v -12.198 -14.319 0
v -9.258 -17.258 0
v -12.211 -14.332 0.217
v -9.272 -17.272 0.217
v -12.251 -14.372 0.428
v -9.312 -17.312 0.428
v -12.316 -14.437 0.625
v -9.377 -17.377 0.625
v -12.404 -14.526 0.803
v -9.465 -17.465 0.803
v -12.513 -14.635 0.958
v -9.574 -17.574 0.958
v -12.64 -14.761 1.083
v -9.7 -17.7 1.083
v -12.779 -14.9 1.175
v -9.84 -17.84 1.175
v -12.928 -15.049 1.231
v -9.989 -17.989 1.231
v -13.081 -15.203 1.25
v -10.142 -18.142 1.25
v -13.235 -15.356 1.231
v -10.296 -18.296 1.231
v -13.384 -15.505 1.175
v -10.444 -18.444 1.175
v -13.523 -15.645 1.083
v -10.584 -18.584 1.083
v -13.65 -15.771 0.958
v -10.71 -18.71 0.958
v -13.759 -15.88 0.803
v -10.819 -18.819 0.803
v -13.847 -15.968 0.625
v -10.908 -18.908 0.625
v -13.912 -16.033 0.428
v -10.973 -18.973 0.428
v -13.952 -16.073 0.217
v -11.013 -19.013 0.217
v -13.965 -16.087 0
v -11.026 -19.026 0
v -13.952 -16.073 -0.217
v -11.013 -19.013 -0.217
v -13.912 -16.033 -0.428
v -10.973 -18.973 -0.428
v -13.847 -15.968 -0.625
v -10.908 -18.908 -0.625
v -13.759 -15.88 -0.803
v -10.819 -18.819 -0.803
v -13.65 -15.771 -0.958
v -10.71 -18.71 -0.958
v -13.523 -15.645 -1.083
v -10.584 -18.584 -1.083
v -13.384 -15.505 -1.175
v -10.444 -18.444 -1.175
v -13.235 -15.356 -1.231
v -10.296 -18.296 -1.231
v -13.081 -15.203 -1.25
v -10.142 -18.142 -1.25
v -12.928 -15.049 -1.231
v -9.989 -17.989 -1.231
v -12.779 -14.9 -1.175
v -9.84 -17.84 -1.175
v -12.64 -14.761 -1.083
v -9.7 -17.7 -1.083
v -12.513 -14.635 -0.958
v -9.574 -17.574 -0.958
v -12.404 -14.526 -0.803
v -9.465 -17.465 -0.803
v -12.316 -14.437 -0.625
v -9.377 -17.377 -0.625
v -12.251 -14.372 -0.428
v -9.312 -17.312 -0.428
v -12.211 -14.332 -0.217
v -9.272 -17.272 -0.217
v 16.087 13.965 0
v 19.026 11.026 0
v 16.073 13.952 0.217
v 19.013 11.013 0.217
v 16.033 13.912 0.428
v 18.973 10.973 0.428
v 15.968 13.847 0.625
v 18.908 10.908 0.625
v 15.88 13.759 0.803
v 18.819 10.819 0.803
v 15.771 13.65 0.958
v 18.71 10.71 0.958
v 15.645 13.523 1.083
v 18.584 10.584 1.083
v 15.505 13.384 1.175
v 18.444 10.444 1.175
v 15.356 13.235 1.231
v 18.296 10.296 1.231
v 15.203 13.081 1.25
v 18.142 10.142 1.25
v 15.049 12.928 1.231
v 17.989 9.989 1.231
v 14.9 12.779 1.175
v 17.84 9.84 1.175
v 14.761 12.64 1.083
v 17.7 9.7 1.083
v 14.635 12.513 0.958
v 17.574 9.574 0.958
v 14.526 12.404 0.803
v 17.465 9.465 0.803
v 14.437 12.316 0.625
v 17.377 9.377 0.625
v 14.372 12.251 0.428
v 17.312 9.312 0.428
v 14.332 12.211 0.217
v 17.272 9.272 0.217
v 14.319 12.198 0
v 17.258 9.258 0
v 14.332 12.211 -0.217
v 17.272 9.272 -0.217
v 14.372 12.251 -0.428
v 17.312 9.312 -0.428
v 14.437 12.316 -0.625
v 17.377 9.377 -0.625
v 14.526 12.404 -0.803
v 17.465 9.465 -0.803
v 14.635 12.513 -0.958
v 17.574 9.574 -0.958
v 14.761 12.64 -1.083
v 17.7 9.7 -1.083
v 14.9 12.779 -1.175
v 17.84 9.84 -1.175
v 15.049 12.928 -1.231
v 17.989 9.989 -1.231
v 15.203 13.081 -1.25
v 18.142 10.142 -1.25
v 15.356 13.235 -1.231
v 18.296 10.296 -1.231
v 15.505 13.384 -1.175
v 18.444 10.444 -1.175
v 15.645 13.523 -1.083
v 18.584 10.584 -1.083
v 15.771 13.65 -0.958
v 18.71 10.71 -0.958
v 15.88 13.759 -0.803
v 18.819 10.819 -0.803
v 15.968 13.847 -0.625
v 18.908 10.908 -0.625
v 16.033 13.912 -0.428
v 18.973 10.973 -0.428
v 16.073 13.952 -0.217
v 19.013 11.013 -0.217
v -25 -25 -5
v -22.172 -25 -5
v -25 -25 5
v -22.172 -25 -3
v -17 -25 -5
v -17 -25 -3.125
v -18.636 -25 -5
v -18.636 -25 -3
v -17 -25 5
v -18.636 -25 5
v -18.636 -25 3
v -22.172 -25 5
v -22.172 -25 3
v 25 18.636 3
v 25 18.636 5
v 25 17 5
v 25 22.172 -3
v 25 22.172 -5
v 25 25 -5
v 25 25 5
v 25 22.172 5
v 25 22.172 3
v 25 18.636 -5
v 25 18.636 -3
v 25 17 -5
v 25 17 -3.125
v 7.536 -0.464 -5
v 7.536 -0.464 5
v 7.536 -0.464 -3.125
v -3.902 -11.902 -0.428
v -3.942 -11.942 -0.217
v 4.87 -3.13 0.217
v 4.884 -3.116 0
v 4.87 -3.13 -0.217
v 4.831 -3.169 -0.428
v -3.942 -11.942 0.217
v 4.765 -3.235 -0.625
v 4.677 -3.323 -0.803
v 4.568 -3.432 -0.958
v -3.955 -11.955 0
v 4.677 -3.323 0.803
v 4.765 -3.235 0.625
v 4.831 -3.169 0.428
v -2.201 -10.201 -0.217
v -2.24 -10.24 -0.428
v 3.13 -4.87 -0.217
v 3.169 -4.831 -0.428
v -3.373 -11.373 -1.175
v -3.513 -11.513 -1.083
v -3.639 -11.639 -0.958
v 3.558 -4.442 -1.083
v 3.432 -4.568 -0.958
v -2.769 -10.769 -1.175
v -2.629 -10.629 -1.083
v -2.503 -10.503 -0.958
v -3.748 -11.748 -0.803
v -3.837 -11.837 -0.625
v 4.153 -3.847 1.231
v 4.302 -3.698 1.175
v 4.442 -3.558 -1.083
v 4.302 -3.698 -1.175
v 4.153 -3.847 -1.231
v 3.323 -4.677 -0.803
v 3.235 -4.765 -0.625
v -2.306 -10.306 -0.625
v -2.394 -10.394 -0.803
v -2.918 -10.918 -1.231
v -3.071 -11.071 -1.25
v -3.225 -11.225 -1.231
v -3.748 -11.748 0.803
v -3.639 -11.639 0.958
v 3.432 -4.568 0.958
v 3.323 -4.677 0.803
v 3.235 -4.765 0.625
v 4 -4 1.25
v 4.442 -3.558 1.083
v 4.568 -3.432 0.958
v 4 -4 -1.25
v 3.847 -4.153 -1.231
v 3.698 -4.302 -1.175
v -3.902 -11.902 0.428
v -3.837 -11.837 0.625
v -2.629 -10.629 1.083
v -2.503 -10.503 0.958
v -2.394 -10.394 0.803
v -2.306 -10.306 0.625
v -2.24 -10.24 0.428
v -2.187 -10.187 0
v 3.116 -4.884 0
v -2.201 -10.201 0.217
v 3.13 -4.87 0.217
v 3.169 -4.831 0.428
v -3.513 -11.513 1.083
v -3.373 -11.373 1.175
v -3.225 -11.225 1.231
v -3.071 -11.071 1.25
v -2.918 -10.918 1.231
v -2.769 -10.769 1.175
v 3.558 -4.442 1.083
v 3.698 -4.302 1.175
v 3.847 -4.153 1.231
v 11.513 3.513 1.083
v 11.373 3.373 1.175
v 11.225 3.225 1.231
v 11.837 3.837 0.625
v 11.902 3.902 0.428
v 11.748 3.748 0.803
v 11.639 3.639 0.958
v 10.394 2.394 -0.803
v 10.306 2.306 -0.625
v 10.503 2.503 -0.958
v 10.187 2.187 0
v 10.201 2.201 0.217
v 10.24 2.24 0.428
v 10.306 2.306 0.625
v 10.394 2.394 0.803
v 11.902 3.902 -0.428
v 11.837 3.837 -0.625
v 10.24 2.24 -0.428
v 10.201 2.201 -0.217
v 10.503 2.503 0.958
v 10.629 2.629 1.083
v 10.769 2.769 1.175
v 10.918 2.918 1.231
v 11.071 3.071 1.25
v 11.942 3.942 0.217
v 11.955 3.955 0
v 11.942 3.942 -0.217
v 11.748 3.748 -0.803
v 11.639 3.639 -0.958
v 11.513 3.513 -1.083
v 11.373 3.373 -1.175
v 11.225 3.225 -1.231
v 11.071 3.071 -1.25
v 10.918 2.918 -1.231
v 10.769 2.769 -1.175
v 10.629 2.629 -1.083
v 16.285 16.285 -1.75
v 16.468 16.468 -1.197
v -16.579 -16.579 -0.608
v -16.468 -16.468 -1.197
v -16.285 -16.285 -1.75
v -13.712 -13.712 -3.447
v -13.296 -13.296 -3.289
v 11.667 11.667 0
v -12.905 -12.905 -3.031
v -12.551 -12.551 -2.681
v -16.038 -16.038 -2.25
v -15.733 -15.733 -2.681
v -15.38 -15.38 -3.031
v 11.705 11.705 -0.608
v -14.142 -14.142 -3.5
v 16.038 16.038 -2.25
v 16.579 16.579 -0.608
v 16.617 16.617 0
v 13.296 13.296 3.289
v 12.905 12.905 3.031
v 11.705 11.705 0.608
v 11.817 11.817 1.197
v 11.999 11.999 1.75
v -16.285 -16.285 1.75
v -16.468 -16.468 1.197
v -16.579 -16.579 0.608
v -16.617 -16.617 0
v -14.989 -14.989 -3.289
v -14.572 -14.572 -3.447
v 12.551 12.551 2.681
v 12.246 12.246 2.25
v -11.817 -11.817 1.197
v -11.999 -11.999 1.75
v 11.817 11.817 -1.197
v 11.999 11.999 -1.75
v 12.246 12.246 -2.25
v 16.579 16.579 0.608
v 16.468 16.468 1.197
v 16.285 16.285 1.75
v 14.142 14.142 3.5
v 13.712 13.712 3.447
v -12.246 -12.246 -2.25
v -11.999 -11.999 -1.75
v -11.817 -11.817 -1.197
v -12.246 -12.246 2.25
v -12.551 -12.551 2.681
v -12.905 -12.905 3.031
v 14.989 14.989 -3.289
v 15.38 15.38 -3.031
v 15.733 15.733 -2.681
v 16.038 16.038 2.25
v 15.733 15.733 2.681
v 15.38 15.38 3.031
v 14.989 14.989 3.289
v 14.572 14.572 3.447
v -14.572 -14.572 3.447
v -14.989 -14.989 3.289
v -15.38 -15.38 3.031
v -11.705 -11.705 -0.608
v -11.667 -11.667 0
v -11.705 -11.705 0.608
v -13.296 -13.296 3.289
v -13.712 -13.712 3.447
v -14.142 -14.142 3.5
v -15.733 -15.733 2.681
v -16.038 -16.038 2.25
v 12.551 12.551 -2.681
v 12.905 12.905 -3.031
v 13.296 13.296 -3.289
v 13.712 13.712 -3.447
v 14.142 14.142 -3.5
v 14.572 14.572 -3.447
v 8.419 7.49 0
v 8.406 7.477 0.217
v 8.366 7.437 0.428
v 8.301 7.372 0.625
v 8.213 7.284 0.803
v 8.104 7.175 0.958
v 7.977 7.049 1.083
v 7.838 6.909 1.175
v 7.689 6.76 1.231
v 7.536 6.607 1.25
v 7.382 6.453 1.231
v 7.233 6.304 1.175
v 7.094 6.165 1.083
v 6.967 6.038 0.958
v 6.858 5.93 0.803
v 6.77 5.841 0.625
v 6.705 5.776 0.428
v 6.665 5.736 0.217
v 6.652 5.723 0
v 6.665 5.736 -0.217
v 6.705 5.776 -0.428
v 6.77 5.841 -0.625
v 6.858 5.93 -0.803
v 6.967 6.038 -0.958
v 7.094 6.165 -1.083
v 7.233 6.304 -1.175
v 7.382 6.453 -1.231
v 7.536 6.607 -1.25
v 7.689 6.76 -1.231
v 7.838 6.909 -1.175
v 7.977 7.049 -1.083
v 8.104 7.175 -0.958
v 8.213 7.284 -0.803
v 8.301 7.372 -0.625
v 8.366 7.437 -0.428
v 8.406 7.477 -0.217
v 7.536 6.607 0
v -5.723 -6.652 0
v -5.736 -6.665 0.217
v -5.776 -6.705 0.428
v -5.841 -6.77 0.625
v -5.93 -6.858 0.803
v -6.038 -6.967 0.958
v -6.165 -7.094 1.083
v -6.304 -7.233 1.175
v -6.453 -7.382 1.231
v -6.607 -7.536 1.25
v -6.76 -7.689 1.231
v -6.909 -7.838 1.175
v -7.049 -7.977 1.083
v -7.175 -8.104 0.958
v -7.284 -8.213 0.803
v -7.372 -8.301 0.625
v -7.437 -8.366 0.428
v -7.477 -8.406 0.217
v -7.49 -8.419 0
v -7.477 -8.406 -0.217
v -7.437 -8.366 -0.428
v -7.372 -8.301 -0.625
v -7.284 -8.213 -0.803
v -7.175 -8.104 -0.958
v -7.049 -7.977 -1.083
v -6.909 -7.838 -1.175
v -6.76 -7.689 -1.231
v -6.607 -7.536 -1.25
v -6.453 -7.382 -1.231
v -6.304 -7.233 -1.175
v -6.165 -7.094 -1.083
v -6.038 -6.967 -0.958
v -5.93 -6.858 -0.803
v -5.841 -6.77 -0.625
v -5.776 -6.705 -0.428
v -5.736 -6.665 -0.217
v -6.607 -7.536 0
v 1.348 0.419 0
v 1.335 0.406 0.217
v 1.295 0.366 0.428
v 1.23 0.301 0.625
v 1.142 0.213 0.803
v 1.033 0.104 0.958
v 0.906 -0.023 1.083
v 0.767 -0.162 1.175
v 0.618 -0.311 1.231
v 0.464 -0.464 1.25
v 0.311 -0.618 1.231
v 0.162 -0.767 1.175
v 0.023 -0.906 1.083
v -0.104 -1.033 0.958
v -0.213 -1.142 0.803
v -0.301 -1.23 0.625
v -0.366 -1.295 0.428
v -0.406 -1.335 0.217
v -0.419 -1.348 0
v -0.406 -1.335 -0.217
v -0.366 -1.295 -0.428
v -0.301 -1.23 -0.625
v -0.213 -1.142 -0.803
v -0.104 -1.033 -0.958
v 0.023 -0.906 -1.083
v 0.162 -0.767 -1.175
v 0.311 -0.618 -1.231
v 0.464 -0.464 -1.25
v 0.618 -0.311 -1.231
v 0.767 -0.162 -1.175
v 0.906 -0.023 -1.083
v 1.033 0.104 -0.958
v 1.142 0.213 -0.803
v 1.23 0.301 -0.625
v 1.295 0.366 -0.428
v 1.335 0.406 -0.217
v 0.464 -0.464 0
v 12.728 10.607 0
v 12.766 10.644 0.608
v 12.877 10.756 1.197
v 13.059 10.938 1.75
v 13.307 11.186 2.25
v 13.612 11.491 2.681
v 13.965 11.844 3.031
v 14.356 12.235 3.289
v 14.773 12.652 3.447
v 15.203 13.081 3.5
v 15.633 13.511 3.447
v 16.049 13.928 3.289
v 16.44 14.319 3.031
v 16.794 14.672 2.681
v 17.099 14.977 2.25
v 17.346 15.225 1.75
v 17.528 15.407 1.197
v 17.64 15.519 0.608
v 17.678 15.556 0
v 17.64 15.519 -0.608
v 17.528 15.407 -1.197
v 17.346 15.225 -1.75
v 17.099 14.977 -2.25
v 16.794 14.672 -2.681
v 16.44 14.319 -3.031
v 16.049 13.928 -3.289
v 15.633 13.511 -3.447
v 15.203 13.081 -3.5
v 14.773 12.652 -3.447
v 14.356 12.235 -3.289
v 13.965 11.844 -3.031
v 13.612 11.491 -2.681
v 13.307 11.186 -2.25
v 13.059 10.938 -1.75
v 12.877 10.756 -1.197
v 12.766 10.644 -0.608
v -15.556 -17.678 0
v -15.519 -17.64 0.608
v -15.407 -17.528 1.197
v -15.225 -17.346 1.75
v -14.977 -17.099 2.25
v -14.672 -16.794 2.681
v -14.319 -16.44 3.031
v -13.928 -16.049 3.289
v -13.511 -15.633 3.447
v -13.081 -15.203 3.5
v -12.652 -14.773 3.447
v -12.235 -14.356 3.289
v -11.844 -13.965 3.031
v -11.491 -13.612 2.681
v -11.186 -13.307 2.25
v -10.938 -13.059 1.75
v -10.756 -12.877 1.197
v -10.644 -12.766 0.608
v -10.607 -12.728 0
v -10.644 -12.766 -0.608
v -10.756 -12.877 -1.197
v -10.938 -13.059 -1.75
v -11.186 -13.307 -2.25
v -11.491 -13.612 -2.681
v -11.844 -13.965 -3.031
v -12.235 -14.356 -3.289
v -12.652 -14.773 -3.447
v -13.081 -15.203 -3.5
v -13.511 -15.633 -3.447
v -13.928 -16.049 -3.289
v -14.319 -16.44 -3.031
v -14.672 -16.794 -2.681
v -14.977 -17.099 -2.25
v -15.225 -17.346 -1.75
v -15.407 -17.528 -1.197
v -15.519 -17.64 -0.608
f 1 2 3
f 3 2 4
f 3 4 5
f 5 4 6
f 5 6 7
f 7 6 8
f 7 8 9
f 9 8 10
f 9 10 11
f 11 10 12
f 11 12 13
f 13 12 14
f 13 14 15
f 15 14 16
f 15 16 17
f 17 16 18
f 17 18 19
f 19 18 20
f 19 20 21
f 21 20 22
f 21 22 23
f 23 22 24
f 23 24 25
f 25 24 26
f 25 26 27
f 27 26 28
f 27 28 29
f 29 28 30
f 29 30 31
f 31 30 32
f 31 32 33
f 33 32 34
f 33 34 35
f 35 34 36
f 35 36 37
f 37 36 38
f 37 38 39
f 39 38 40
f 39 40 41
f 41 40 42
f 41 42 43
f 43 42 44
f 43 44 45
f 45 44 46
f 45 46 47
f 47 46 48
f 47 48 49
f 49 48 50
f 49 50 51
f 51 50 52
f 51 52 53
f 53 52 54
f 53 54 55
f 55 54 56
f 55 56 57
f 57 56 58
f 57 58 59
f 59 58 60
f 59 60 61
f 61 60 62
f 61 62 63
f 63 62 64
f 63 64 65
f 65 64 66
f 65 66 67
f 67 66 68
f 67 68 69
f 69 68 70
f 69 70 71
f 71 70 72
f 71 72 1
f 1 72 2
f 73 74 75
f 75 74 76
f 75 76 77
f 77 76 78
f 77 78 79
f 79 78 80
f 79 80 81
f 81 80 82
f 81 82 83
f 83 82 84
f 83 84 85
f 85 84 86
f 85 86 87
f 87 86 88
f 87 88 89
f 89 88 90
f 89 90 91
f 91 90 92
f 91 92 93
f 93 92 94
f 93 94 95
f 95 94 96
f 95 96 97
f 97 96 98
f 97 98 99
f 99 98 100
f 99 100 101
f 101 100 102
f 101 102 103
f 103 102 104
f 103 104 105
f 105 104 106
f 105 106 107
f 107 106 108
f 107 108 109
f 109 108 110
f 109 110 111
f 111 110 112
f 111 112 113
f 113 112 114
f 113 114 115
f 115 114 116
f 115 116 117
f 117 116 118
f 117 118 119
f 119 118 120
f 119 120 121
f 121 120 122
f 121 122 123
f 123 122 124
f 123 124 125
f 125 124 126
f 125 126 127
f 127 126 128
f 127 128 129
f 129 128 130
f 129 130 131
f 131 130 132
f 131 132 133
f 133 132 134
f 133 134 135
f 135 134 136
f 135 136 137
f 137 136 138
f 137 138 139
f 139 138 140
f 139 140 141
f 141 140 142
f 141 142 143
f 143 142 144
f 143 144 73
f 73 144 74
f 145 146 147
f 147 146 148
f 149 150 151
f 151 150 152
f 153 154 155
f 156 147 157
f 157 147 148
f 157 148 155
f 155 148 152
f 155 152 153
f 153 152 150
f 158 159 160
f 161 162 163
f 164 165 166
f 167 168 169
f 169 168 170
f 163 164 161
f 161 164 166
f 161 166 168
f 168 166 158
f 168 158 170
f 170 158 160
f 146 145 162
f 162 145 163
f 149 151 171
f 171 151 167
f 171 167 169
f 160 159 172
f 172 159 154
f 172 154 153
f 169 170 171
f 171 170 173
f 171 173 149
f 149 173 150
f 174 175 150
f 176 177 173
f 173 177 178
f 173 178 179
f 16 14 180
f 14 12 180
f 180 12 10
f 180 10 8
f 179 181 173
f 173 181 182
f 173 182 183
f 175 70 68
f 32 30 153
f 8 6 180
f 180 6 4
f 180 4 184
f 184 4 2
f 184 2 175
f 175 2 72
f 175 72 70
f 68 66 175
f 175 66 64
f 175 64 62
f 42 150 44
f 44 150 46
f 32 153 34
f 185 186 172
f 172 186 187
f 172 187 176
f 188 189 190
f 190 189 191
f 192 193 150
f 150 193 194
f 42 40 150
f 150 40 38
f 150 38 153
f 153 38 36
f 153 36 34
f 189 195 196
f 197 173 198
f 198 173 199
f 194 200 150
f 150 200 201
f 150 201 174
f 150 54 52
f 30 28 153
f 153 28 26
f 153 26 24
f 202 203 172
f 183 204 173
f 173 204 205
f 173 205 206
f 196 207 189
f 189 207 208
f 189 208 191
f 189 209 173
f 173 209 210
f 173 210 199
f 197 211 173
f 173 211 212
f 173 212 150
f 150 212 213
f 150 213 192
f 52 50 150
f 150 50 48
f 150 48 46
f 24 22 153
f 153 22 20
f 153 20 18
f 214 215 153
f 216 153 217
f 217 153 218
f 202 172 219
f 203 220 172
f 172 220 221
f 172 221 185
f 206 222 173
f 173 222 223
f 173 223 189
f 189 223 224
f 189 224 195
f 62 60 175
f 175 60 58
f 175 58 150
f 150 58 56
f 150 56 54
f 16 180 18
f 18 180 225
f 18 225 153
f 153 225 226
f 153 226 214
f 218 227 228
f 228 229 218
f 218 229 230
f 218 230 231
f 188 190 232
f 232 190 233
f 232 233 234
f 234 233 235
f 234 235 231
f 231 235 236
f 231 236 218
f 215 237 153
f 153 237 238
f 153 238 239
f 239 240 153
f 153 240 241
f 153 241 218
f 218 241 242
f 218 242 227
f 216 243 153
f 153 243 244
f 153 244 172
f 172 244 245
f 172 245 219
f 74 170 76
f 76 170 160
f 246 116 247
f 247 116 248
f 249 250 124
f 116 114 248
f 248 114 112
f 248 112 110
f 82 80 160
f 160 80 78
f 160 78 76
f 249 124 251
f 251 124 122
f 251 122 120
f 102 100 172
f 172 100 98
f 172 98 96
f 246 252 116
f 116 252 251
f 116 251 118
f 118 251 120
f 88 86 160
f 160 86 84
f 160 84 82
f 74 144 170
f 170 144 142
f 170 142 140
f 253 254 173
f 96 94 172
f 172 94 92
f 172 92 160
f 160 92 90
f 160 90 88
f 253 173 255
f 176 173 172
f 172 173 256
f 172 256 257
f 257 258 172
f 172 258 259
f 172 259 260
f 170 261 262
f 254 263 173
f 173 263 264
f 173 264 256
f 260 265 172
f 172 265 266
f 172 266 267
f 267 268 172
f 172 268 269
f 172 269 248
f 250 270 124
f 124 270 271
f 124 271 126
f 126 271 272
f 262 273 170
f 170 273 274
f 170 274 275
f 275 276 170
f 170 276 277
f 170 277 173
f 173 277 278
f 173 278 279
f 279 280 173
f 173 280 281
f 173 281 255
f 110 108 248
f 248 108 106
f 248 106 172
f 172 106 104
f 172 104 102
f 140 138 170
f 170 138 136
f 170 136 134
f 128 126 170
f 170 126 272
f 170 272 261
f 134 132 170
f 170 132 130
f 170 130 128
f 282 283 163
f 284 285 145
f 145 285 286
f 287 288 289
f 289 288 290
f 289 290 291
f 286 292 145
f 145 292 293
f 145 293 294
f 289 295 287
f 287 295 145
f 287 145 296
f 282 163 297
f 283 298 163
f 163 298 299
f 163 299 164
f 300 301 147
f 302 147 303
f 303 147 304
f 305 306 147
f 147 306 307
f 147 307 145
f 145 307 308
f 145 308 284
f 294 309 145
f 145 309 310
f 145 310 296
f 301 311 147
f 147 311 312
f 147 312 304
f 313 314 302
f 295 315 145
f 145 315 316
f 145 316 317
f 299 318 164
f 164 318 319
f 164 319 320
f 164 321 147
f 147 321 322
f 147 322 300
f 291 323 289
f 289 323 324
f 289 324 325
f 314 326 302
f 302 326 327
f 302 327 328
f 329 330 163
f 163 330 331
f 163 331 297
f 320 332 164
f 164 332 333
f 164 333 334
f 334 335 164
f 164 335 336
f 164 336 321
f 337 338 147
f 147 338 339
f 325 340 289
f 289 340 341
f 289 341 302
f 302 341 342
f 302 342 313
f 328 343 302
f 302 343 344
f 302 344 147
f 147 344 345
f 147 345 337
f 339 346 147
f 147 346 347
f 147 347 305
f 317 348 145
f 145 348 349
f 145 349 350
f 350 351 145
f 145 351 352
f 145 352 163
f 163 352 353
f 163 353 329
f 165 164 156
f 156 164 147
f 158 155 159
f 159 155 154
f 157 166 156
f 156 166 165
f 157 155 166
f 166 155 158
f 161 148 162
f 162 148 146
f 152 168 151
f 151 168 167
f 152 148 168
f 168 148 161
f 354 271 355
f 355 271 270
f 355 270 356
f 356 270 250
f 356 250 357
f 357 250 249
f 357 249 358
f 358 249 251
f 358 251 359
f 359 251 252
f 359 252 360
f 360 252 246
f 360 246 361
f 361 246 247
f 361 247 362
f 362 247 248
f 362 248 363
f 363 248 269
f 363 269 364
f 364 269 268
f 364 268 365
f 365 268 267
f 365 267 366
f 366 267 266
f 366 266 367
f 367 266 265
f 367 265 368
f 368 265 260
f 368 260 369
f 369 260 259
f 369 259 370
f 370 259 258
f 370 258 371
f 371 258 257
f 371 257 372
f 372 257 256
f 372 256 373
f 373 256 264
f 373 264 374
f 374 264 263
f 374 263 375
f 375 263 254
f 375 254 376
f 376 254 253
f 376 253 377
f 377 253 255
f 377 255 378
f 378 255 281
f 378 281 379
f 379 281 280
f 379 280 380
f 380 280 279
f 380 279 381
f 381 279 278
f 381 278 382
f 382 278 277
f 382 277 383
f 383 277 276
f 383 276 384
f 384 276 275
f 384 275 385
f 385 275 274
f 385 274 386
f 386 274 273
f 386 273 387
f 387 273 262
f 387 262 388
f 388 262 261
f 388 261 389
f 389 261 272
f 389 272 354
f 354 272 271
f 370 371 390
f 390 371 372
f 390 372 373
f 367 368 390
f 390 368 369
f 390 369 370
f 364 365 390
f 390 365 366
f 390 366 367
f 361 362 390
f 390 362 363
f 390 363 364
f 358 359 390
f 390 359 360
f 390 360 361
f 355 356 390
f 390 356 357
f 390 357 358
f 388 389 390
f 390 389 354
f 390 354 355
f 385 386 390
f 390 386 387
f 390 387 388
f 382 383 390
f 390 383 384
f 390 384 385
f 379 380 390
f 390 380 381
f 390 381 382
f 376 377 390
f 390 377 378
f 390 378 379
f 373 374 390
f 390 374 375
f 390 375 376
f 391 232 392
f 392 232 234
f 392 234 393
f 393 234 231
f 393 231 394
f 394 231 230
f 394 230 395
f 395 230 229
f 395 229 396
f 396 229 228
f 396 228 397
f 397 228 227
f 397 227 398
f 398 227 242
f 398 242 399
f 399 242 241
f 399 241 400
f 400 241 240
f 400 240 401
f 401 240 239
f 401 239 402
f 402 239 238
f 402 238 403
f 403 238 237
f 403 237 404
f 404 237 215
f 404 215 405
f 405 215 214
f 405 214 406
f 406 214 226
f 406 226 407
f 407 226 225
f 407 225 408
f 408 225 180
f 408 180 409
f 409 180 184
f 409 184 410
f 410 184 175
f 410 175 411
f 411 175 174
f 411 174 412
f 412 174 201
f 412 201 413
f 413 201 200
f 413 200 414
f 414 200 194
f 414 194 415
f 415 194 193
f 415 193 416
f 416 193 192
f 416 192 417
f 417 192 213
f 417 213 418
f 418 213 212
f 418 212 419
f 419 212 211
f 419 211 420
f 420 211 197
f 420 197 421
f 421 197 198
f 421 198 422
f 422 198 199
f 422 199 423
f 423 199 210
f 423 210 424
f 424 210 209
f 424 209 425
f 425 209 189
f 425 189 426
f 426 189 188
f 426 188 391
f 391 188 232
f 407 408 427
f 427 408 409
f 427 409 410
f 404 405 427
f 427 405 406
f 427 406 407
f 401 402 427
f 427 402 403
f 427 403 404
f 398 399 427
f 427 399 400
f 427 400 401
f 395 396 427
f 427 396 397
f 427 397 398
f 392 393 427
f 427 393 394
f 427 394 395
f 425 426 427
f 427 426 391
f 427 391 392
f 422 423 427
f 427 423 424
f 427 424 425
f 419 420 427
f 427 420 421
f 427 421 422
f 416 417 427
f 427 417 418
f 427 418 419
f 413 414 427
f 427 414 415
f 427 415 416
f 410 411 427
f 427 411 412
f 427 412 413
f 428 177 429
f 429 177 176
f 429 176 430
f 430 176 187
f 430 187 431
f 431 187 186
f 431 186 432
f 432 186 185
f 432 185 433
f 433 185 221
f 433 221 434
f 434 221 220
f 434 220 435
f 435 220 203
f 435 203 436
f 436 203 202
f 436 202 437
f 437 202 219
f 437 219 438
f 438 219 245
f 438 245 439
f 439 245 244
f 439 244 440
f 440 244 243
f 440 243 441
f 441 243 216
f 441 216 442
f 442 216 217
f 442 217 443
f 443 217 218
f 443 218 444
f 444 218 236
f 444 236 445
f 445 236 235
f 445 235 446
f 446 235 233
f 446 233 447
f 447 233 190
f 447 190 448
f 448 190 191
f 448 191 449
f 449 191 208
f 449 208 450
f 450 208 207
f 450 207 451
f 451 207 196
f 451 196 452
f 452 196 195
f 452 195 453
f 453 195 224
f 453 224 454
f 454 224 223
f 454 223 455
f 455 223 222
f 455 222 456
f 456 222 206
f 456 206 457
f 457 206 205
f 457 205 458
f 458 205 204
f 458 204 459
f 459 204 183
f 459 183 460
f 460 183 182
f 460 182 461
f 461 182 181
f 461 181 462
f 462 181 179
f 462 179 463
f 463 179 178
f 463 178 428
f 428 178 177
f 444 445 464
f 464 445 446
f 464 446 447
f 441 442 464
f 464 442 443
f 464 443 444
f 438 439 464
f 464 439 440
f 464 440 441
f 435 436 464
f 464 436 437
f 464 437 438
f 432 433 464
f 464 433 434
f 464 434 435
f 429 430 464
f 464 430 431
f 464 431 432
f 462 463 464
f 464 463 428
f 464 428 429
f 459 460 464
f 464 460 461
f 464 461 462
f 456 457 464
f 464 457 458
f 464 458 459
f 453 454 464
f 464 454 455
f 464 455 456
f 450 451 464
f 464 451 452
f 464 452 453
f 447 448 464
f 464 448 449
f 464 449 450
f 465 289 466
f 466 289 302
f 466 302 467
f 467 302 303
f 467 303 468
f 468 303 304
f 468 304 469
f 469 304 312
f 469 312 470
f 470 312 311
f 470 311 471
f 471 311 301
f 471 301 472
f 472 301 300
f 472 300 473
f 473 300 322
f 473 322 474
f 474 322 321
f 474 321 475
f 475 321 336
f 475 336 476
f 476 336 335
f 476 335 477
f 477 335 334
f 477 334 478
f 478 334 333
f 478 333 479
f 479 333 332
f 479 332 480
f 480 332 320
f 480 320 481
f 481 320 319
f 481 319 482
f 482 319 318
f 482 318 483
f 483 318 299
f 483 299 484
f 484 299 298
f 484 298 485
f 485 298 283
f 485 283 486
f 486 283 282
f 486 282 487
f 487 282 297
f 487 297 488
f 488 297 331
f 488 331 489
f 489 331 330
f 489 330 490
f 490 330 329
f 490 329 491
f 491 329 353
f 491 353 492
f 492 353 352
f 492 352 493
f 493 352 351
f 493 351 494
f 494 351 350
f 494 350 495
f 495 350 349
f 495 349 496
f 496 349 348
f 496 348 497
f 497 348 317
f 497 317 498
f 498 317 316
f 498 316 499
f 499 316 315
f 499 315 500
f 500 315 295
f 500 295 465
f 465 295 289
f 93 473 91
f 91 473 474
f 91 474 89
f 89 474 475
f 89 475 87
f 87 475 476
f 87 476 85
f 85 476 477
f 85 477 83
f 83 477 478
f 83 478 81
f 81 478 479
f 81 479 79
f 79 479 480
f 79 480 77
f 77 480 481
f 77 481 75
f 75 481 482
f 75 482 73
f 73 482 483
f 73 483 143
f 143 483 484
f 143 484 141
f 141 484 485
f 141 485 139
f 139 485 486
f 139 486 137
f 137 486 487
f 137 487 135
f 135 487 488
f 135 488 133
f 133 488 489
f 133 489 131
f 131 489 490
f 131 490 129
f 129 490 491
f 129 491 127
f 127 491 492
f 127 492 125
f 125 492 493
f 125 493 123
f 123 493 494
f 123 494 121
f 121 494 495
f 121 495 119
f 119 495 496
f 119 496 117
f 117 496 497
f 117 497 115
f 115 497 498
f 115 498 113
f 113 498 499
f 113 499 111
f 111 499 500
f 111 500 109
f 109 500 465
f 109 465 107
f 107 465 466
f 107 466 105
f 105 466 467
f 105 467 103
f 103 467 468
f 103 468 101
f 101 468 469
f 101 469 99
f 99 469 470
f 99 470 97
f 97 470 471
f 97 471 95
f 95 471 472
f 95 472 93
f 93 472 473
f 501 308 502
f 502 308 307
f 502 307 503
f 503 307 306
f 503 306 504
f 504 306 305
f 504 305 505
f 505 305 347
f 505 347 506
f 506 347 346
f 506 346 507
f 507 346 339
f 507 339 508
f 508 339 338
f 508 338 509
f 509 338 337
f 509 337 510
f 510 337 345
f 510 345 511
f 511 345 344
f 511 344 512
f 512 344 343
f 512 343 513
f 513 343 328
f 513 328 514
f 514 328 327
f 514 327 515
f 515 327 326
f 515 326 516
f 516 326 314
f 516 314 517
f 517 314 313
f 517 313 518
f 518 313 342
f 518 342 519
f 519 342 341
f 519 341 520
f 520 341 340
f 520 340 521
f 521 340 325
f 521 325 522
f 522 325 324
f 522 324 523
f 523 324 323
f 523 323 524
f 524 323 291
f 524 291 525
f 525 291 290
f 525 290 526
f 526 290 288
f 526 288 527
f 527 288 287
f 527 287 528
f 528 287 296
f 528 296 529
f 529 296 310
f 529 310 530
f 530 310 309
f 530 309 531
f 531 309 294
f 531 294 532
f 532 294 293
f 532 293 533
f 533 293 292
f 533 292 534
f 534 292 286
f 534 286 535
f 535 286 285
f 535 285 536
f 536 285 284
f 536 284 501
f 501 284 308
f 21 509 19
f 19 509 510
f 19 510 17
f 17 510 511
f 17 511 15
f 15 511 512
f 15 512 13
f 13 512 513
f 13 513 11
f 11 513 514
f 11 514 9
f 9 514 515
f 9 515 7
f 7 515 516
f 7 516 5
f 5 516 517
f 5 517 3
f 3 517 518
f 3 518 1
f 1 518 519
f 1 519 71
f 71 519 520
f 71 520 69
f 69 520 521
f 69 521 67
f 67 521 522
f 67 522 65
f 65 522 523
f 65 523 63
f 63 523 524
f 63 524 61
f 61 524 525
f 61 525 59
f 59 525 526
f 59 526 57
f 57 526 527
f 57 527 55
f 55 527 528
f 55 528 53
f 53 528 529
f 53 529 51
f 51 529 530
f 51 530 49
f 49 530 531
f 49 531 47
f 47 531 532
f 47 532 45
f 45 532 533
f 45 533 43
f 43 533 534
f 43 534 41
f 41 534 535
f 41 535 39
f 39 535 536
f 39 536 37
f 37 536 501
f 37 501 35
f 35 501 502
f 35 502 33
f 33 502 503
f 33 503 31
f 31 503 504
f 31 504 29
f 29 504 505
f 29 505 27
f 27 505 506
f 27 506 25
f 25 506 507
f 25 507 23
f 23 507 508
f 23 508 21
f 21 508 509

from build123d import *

# Parameters (mm, degrees)
MAIN_DEPTH         = 5
WINDOWSLOT1_DEPTH  = 2
SKETCH6_R          = 1.25
CUT_EXTRUDE2_DEPTH = 5
LPATTERN1_COUNT    = 5
LPATTERN1_PITCH    = 10
SKETCH7_R          = 3.5
CUT_EXTRUDE4_DEPTH = 1.5


with BuildPart() as part:
    # Sketch1 → Main (new body, symmetric)
    with BuildSketch(Plane.XY):
        Polygon((-25, -25), (25, 25), (25, 17), (-17, -25), align=None)
    extrude(amount=MAIN_DEPTH, both=True)

    # Sketch4 → WindowSlot1 (cut)
    with BuildSketch(Plane.XY.offset(5)):
        Polygon((25, 22.171572875), (-22.171572875, -25), (-18.636038969, -25), (25, 18.636038969), align=None)
    windowslot1 = extrude(amount=-WINDOWSLOT1_DEPTH, mode=Mode.SUBTRACT)

    # Mirror1: WindowSlot1 across plane
    add(windowslot1.mirror(Plane.XY), mode=Mode.SUBTRACT)

    # Sketch6 → Cut-Extrude2 (cut)
    with BuildSketch(Plane(origin=(4, -4, 0), x_dir=(0, 0, 1), z_dir=(-0.707106781, 0.707106781, 0))):
        with Locations((0, 20)):
            Circle(SKETCH6_R)
    cut_extrude2 = extrude(amount=CUT_EXTRUDE2_DEPTH, mode=Mode.SUBTRACT)

    # LPattern1: Cut-Extrude2 ×5
    with Locations(*[Vector(-0.707106781, -0.707106781, 0) * (i * LPATTERN1_PITCH) for i in range(1, LPATTERN1_COUNT)]):
        add(cut_extrude2, mode=Mode.SUBTRACT)

    # Sketch7 → Cut-Extrude4 (cut)
    with BuildSketch(Plane(origin=(0, 0, 0), x_dir=(0, 0, 1), z_dir=(-0.707106781, 0.707106781, 0))):
        with Locations((0, 20)):
            Circle(SKETCH7_R)
        with Locations((0, -20)):
            Circle(SKETCH7_R)
    extrude(amount=-CUT_EXTRUDE4_DEPTH, mode=Mode.SUBTRACT)


solid = part.part
